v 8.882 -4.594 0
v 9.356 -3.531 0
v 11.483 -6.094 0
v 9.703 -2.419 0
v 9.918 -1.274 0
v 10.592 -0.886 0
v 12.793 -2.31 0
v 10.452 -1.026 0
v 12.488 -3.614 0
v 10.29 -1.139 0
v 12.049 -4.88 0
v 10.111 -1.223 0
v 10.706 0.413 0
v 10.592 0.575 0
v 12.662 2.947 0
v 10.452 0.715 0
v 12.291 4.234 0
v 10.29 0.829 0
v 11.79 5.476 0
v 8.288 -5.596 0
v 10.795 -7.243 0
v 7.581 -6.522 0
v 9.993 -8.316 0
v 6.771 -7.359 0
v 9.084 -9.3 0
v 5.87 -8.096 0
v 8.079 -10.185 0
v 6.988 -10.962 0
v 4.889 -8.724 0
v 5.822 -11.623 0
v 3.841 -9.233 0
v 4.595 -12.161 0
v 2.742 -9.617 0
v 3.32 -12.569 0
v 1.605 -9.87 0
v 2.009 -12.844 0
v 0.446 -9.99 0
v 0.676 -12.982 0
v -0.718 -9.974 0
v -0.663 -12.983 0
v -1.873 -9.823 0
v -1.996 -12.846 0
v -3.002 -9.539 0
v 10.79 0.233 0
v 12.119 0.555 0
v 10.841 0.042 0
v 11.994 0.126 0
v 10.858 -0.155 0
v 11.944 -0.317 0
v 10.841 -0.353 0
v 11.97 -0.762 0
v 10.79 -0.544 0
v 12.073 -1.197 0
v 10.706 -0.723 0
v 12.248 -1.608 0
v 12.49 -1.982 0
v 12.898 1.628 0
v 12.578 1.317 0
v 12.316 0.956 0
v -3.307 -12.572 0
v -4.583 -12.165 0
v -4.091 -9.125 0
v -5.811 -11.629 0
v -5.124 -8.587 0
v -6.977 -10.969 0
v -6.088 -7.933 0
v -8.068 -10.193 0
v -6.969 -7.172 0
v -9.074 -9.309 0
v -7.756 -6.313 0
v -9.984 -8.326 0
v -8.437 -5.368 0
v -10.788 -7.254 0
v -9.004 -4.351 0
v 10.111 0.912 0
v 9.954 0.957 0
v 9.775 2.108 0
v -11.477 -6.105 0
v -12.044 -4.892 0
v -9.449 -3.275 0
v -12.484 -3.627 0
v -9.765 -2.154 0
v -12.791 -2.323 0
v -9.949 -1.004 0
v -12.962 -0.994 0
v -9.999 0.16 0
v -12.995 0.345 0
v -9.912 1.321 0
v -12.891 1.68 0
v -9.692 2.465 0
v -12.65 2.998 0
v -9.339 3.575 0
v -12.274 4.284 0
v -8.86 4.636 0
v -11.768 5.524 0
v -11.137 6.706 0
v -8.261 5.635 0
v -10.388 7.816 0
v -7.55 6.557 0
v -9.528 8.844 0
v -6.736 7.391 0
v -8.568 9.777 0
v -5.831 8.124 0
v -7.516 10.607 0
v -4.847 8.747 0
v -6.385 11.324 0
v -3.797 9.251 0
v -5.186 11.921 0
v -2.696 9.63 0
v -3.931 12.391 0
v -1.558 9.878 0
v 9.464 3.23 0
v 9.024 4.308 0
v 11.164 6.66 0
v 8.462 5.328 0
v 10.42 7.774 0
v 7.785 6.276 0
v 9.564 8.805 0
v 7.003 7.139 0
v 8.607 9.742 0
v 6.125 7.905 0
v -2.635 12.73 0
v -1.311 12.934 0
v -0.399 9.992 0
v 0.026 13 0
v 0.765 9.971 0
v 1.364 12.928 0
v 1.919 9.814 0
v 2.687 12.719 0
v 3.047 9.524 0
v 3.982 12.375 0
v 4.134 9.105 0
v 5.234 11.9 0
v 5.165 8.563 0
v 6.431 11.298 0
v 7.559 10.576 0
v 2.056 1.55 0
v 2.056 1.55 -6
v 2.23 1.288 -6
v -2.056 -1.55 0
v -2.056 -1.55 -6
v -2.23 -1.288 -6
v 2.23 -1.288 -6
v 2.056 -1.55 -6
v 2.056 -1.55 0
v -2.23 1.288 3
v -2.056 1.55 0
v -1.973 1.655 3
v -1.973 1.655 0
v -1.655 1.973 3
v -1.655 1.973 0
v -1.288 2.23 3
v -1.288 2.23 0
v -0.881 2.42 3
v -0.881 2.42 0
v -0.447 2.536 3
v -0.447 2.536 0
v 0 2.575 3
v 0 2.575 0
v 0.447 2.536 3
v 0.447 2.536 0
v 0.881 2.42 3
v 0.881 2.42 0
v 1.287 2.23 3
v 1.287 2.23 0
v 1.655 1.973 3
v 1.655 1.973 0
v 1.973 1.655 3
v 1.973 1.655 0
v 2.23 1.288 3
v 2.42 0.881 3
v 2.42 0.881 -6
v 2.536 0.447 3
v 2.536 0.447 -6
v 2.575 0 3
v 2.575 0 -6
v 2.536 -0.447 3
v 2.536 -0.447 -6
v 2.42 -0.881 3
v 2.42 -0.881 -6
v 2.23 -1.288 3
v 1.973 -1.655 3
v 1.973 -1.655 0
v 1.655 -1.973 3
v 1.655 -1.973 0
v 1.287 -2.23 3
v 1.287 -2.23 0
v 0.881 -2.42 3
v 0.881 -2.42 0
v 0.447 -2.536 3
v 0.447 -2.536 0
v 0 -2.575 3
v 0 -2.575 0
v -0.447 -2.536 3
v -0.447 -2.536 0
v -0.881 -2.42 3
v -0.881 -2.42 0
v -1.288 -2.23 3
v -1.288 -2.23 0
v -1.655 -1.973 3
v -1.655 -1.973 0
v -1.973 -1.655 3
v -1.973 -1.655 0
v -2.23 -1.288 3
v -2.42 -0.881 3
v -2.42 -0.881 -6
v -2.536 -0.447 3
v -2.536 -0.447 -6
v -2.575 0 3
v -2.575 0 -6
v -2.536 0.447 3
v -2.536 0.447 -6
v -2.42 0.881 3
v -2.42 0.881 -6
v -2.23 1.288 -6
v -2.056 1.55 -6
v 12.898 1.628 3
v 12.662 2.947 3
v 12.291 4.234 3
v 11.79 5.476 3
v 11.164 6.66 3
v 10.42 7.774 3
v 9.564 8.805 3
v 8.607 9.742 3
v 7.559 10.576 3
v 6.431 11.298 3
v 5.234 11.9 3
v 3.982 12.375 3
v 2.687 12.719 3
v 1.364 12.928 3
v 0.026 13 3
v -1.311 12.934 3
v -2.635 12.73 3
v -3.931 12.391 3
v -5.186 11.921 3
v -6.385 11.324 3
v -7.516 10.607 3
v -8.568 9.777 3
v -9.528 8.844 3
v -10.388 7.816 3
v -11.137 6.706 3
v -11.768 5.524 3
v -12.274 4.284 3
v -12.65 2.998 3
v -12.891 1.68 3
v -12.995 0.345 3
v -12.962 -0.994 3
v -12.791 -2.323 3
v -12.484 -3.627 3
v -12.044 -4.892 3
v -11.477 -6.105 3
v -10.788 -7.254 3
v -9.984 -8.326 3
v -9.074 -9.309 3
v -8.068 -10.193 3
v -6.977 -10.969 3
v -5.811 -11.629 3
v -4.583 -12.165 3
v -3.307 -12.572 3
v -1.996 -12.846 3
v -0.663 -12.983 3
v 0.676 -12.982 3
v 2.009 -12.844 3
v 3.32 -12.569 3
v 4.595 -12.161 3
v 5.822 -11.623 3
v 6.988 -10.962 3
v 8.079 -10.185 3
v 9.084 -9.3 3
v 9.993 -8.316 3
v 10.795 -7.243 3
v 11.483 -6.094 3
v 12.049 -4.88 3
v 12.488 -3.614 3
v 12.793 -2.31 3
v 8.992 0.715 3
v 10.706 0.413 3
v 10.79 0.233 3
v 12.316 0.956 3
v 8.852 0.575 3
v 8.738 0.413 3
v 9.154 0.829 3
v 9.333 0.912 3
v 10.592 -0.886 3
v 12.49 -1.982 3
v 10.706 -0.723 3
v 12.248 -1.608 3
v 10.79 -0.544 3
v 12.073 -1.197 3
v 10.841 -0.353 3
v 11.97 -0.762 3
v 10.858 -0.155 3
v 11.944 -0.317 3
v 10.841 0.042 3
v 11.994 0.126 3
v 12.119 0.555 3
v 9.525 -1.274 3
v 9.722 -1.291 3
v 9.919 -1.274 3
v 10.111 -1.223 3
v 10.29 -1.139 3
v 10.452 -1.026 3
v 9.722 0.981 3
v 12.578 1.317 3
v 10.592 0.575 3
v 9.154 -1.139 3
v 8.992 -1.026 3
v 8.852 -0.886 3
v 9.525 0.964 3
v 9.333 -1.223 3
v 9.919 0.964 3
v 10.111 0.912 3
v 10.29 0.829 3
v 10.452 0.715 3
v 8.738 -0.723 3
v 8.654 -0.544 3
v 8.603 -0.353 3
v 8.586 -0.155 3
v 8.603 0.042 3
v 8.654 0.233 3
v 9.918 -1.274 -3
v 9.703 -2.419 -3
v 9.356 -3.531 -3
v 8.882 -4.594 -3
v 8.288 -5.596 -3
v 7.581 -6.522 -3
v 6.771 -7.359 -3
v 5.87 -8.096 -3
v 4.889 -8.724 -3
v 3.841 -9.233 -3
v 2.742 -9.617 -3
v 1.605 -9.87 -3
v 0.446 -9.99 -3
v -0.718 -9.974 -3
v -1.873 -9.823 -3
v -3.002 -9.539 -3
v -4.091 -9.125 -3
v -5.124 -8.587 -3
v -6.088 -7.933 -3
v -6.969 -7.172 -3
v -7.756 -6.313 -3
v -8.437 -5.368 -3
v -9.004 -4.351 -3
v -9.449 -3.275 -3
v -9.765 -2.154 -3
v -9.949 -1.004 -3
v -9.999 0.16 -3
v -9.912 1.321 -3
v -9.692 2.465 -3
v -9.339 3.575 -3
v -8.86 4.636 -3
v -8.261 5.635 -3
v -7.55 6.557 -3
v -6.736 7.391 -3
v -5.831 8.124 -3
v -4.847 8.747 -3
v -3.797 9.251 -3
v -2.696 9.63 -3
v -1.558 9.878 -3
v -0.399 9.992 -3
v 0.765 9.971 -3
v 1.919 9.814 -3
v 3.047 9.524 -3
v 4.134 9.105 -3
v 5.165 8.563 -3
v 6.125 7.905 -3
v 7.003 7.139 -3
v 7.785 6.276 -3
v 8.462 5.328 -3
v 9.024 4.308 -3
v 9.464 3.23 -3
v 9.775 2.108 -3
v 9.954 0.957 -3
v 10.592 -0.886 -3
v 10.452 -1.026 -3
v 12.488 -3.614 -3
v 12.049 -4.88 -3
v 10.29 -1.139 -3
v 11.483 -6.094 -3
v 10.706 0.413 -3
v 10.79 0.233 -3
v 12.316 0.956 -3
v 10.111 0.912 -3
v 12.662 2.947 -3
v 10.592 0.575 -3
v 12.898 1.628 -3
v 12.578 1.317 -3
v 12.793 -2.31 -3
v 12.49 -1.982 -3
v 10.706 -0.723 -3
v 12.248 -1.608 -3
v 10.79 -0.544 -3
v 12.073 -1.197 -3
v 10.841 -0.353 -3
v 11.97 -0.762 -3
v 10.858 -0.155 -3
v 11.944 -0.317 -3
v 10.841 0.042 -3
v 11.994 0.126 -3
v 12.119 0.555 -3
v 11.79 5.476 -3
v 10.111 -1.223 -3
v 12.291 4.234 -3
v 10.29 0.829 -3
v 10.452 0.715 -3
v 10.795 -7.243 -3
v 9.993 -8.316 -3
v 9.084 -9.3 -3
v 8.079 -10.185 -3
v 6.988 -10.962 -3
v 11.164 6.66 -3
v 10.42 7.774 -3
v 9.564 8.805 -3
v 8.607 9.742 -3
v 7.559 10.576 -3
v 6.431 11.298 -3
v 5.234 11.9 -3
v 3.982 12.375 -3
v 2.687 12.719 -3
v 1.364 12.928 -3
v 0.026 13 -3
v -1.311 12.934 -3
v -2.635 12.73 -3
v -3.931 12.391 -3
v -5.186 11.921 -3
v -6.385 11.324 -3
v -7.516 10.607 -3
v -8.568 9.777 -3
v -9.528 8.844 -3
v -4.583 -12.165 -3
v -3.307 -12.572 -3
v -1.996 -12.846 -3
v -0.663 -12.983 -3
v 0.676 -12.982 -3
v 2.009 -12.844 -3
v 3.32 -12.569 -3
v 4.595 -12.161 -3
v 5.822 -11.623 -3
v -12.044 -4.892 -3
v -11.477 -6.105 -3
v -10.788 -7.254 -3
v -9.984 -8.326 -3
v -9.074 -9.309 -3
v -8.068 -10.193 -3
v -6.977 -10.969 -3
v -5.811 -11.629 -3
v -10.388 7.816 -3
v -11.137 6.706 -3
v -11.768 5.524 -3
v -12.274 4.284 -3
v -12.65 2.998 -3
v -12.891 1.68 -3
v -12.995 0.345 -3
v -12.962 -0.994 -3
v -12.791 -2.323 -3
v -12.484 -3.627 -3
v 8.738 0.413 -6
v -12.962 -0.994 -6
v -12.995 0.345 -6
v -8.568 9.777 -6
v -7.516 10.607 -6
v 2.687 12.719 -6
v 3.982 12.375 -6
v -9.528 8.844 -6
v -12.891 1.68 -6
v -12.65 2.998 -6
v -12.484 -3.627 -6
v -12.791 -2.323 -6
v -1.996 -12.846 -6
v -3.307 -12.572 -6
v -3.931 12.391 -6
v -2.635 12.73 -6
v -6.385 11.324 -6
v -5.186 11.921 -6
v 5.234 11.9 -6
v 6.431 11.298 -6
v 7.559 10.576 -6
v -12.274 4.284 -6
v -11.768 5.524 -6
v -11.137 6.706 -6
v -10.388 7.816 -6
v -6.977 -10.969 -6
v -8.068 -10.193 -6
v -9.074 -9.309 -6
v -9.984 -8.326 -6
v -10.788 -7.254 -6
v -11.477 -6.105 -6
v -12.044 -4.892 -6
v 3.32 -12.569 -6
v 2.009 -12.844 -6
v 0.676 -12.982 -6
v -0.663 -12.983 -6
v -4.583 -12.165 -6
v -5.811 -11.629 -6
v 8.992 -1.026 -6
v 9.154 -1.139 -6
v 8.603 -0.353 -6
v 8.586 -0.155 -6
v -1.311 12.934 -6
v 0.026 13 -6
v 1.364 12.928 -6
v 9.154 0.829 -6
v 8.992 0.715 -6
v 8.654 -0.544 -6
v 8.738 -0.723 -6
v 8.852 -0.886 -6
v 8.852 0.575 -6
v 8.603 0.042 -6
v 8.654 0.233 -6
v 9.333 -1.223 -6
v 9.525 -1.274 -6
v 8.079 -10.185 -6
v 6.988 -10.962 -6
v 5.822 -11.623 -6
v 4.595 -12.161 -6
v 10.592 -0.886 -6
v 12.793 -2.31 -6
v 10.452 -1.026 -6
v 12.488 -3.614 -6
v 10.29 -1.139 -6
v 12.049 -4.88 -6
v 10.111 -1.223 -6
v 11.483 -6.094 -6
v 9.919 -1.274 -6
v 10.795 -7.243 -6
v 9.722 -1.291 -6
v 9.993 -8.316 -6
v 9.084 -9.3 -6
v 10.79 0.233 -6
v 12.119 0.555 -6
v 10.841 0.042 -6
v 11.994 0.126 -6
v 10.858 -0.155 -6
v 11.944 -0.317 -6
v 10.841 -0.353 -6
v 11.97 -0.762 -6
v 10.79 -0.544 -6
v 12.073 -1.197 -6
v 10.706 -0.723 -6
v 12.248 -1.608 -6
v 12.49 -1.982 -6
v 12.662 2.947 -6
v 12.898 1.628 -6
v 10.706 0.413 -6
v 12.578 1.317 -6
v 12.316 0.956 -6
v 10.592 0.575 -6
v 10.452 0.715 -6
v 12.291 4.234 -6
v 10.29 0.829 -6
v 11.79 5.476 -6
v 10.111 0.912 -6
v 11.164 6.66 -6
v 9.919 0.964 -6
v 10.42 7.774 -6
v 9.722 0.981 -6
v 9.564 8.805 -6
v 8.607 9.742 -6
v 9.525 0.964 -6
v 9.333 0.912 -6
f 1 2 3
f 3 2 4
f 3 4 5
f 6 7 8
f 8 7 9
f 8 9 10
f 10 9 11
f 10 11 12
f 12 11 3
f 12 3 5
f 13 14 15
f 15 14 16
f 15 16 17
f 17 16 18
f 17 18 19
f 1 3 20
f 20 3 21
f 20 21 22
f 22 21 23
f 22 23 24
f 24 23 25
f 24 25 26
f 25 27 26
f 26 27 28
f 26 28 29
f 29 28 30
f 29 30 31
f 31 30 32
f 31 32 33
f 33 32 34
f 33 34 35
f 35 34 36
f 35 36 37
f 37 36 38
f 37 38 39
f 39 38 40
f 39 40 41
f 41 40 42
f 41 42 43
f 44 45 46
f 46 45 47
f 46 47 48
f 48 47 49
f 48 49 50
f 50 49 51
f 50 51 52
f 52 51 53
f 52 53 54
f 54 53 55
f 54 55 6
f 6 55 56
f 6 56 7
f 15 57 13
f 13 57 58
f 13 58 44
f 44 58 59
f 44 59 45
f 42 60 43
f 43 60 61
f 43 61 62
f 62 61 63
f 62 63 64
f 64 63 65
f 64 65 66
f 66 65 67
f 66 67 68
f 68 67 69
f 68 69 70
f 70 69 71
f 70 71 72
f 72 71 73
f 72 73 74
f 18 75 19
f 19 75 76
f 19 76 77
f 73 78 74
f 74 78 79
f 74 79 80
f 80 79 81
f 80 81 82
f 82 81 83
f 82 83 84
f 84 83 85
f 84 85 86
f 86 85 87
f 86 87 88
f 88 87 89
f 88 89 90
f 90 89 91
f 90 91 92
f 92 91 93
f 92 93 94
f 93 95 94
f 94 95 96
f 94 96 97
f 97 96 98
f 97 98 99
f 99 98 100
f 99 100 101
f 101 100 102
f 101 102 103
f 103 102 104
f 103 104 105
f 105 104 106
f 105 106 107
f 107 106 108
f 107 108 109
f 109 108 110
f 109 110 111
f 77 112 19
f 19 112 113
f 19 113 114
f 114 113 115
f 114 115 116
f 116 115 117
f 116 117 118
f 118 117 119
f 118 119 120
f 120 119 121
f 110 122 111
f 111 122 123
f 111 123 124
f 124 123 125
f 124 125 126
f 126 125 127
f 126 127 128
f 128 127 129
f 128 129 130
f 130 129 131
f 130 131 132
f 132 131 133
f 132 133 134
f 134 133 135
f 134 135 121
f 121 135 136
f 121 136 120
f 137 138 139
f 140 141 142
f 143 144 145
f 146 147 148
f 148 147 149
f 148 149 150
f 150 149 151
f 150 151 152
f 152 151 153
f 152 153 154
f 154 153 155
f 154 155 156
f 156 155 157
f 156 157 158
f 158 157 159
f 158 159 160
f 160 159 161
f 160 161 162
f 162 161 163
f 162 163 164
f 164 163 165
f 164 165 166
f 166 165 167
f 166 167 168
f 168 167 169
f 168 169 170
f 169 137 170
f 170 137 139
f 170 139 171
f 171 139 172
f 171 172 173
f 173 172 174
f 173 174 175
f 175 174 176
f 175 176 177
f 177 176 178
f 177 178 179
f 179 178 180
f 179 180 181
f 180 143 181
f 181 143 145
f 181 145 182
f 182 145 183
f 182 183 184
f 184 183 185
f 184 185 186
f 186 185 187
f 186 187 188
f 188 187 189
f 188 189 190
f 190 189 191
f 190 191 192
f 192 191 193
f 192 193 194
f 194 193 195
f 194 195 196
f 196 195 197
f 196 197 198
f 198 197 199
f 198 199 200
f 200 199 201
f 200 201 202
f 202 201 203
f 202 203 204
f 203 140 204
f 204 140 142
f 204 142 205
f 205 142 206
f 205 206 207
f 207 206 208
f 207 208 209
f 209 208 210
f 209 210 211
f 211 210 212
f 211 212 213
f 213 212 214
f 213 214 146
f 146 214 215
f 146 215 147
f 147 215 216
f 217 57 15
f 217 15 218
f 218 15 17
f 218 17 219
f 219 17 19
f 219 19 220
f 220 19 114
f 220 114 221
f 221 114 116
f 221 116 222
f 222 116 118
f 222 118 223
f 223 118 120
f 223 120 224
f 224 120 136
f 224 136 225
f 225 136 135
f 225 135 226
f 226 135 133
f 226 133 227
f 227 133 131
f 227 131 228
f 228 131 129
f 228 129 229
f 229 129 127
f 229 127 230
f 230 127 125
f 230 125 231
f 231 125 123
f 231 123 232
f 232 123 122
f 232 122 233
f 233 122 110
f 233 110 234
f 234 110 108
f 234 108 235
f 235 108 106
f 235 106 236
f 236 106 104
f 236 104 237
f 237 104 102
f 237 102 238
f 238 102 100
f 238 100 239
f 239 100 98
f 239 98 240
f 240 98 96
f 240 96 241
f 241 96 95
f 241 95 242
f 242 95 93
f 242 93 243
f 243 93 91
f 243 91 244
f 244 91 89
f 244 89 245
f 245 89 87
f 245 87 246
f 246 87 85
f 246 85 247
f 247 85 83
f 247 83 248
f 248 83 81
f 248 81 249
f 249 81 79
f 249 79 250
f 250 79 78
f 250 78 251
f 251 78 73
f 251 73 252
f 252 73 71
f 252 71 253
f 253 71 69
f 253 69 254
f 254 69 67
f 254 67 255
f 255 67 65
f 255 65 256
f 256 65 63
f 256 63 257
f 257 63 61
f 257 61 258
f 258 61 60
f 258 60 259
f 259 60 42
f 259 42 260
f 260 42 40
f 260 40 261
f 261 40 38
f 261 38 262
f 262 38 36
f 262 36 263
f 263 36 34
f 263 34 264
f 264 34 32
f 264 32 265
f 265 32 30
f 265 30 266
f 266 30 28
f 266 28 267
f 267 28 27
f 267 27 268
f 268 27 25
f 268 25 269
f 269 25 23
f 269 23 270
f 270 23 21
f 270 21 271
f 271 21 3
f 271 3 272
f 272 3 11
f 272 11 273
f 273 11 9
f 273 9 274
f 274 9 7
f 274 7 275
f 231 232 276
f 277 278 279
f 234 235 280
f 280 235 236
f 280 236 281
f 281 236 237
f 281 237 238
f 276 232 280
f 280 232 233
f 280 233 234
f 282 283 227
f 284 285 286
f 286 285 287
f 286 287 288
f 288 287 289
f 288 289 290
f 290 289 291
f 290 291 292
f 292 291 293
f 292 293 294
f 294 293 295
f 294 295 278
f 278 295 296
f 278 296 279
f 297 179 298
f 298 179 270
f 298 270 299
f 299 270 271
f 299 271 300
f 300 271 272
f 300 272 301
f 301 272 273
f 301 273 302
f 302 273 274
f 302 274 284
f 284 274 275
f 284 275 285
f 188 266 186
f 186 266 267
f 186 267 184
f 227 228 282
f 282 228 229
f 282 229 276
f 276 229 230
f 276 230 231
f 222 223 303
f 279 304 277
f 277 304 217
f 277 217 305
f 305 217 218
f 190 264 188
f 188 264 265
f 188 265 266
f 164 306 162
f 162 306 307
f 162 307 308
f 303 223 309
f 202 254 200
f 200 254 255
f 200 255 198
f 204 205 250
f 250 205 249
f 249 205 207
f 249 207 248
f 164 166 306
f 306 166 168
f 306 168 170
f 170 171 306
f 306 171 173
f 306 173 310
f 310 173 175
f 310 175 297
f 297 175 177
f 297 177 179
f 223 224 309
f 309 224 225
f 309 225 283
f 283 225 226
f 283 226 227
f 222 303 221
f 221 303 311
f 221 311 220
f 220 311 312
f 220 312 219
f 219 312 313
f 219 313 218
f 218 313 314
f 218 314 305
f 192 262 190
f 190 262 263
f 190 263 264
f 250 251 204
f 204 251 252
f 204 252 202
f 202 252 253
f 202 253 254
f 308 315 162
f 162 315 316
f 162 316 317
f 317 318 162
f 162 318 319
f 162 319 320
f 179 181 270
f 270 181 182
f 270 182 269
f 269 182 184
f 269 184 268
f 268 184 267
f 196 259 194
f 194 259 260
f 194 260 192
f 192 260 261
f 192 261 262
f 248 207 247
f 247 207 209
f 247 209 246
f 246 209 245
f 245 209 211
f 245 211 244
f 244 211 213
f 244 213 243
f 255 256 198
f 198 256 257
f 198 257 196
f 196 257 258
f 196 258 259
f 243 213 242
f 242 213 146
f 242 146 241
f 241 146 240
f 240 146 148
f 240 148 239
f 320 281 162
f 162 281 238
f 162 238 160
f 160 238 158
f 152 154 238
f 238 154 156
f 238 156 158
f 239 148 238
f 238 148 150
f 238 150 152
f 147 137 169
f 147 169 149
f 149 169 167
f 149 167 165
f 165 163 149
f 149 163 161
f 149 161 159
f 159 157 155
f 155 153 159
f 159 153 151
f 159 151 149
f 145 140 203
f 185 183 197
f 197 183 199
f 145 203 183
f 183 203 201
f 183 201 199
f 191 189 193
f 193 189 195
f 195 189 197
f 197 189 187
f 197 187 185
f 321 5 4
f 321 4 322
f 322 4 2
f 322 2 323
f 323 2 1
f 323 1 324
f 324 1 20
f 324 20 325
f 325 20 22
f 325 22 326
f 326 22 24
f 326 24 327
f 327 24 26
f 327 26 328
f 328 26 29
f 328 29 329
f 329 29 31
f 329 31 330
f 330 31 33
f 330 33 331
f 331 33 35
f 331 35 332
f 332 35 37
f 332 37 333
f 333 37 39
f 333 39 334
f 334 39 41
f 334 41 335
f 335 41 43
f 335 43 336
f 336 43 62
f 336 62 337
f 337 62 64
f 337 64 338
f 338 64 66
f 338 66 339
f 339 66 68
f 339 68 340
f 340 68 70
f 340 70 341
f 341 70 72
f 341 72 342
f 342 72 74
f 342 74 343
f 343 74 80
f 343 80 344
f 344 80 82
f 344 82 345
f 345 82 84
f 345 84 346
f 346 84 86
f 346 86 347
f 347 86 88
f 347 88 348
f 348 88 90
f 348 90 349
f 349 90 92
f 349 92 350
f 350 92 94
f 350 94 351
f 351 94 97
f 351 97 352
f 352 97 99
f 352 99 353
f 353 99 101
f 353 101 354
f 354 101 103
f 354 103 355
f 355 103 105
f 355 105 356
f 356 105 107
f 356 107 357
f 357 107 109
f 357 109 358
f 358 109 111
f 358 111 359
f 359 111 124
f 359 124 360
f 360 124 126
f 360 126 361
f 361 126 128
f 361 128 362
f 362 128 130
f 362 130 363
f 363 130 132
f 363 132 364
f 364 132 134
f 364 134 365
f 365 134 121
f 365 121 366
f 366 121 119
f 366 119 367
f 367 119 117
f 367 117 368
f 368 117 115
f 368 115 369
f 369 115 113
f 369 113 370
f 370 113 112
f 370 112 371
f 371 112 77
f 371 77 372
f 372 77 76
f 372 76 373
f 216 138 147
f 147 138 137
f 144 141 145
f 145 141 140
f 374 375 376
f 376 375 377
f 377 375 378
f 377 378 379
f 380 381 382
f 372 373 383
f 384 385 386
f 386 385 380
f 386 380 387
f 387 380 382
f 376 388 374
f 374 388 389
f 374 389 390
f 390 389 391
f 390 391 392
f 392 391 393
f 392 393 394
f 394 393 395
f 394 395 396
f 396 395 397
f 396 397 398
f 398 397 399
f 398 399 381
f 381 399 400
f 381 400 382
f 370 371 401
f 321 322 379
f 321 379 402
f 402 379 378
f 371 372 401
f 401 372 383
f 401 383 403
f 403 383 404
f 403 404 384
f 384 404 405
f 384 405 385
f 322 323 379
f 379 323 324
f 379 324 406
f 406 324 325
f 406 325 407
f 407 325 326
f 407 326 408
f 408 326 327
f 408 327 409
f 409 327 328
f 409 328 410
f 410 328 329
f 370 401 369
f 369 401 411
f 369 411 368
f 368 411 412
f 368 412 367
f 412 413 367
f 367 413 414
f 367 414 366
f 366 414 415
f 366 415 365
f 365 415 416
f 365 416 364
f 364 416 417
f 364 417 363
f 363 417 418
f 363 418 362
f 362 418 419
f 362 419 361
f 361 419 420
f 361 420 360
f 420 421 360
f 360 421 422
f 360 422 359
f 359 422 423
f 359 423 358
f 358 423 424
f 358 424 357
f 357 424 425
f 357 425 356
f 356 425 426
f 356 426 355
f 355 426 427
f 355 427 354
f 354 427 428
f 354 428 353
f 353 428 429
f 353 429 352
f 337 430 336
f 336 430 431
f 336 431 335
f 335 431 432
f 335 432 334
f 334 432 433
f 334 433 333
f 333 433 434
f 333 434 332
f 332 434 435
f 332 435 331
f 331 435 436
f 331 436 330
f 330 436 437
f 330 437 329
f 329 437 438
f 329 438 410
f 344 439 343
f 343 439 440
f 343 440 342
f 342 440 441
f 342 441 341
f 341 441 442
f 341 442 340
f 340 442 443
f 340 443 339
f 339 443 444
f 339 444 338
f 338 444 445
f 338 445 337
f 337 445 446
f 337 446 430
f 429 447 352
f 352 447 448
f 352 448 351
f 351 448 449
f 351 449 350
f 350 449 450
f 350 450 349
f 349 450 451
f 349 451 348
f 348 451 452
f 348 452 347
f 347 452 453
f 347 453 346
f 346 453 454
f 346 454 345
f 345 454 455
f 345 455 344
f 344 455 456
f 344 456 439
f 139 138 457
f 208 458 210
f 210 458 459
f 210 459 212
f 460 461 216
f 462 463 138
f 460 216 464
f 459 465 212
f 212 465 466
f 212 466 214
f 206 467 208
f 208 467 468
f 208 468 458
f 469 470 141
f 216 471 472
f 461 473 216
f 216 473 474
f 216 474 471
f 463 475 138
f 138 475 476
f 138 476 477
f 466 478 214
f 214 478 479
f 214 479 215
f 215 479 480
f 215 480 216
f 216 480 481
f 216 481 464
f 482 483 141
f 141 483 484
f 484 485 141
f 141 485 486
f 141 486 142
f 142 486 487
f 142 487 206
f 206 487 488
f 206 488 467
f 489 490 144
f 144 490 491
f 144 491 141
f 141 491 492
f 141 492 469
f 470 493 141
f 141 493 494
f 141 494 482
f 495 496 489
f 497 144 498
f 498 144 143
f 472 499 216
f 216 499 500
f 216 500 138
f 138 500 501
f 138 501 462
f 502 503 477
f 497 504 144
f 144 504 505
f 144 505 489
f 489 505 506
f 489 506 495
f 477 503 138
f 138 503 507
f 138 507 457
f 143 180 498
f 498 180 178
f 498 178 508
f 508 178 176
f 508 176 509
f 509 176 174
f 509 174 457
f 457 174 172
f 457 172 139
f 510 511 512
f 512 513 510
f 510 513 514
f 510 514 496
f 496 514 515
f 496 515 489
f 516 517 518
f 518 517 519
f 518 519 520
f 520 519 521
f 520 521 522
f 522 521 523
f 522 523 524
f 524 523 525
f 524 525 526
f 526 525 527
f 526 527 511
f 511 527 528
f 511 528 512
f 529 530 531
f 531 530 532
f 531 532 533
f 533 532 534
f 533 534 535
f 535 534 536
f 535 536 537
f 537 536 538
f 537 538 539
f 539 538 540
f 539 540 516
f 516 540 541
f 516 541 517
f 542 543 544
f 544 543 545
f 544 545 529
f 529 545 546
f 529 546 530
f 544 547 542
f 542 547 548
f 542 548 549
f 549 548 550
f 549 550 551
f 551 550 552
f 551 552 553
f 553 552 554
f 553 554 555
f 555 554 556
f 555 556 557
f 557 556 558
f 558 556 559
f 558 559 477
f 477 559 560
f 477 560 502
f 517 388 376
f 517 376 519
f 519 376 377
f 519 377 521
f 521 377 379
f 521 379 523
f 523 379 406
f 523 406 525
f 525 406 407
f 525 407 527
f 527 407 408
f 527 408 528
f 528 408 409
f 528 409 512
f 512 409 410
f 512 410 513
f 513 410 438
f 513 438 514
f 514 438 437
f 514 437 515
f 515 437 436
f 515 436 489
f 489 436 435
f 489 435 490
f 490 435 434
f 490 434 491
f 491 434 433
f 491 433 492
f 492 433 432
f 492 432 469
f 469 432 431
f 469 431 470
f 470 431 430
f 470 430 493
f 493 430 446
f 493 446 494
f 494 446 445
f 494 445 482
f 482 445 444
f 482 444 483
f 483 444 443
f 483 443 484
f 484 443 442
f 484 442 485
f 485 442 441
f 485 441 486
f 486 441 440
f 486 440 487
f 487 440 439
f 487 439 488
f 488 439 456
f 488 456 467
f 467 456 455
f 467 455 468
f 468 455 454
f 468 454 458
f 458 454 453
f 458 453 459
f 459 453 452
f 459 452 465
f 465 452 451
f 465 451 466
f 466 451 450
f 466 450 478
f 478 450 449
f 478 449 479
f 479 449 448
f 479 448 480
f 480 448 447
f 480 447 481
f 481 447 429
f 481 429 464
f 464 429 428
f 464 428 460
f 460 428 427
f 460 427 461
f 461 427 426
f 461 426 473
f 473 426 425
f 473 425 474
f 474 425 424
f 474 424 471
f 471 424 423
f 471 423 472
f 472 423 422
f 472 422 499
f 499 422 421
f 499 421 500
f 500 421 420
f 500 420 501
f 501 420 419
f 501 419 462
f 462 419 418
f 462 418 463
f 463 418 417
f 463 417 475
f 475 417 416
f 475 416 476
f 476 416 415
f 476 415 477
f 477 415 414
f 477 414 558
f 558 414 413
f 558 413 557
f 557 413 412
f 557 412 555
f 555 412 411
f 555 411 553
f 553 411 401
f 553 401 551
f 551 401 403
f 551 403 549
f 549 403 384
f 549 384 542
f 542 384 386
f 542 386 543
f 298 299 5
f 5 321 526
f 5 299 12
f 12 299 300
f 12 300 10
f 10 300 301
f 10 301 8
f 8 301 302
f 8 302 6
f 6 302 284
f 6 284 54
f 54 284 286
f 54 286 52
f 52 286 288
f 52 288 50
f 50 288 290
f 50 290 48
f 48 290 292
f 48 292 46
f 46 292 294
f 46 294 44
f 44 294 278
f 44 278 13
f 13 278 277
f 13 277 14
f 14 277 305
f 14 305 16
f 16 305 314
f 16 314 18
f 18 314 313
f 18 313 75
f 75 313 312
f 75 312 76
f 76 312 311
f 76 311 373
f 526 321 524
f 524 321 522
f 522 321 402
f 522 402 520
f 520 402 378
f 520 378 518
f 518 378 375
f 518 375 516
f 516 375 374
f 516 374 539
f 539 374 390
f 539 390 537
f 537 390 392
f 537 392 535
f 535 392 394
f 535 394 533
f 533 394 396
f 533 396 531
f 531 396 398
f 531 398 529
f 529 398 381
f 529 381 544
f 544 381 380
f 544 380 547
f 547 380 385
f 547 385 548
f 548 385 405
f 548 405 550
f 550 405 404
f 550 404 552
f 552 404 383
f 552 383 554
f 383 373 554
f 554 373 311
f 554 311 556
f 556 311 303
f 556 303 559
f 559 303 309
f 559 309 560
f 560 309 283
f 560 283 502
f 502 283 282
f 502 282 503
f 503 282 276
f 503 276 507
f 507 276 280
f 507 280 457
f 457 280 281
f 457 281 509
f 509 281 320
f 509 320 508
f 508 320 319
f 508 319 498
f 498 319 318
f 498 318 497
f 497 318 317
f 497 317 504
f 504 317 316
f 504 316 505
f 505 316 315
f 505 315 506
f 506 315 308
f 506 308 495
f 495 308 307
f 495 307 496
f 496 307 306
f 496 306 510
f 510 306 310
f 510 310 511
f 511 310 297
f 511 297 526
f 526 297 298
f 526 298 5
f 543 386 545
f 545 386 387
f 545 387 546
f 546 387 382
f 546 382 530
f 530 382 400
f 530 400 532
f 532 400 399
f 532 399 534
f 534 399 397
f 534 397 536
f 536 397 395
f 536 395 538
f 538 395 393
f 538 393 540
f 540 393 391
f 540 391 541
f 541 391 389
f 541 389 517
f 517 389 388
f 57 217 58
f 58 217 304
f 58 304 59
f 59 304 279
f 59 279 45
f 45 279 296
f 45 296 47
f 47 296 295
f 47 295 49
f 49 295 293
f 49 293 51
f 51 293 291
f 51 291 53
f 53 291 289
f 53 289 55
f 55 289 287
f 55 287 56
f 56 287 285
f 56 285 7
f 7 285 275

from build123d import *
from build123d.topology import SkipClean

# Parameters (mm, degrees)
SKETCH1_R               = 13
SKETCH1_R_2             = 10
SKETCH1_R_3             = 2.575
BOSS_EXTRUDE4_DEPTH     = 3
BOSS_EXTRUDE5_START     = 3
SKETCH5_R               = 10
BOSS_EXTRUDE5_DEPTH     = 3
BOSS_EXTRUDE6_OUTLINE_R = 13
BOSS_EXTRUDE6_DEPTH     = 3
SKETCH8_R               = 1.136174382
SKETCH8_R_2             = 2.601730121
CUT_EXTRUDE2_DEPTH      = 14


# Read off the part's stored shape, not the designer's step: Boss-Extrude6
with BuildPart() as part:
    # Sketch1 → Boss-Extrude4 (new body)
    # profile 1 of 2: a face of its own
    with BuildSketch(Plane.XY):
        Circle(SKETCH1_R)
        Circle(SKETCH1_R_2, mode=Mode.SUBTRACT)
    # profile 2 of 2: a face of its own
    with BuildSketch(Plane.XY):
        Circle(SKETCH1_R_2)
        Circle(SKETCH1_R_3, mode=Mode.SUBTRACT)
    extrude(amount=BOSS_EXTRUDE4_DEPTH)

    # Sketch5 → Boss-Extrude5 (add)
    with SkipClean():  # the faces are left unmerged after this step: merging them gives an invalid solid
        with BuildSketch(Plane(origin=(0, 0, 0), x_dir=(-1, 0, 0), z_dir=(0, 0, -1)).offset(BOSS_EXTRUDE5_START)):
            Circle(SKETCH5_R)
            with BuildLine():
                Line((2.056240501, 1.55), (-2.056240501, 1.55))
                ThreePointArc((-2.056240501, 1.55), (-2.575, 0), (-2.056240501, -1.55))
                Line((-2.056240501, -1.55), (2.056240501, -1.55))
                ThreePointArc((2.056240501, -1.55), (2.575, 0), (2.056240501, 1.55))
            make_face(mode=Mode.SUBTRACT)
        extrude(amount=-BOSS_EXTRUDE5_DEPTH)

    # Boss-Extrude6 outline → Boss-Extrude6 (add)
    with SkipClean():  # the faces are left unmerged after this step: merging them gives an invalid solid
        with BuildSketch(Plane(origin=(0, 0, -3), x_dir=(-1, 0, 0), z_dir=(0, 0, -1))):
            Circle(BOSS_EXTRUDE6_OUTLINE_R)
            with BuildLine():
                Line((-2.056240501, 1.55), (2.056240501, 1.55))
                ThreePointArc((2.056240501, 1.55), (2.575, 0), (2.056240501, -1.55))
                Line((2.056240501, -1.55), (-2.056240501, -1.55))
                ThreePointArc((-2.056240501, -1.55), (-2.575, 0), (-2.056240501, 1.55))
            make_face(mode=Mode.SUBTRACT)
        extrude(amount=BOSS_EXTRUDE6_DEPTH)

    # Sketch8 → Cut-Extrude2 (cut)
    with SkipClean():  # the faces are left unmerged after this step: merging them gives an invalid solid
        with BuildSketch(Plane.XY.offset(3)):
            with Locations((9.721913819, -0.155301554)):
                Circle(SKETCH8_R)
            with Locations((14.544737257, -0.386006821)):
                Circle(SKETCH8_R_2)
        extrude(amount=-CUT_EXTRUDE2_DEPTH, mode=Mode.SUBTRACT)


solid = part.part
